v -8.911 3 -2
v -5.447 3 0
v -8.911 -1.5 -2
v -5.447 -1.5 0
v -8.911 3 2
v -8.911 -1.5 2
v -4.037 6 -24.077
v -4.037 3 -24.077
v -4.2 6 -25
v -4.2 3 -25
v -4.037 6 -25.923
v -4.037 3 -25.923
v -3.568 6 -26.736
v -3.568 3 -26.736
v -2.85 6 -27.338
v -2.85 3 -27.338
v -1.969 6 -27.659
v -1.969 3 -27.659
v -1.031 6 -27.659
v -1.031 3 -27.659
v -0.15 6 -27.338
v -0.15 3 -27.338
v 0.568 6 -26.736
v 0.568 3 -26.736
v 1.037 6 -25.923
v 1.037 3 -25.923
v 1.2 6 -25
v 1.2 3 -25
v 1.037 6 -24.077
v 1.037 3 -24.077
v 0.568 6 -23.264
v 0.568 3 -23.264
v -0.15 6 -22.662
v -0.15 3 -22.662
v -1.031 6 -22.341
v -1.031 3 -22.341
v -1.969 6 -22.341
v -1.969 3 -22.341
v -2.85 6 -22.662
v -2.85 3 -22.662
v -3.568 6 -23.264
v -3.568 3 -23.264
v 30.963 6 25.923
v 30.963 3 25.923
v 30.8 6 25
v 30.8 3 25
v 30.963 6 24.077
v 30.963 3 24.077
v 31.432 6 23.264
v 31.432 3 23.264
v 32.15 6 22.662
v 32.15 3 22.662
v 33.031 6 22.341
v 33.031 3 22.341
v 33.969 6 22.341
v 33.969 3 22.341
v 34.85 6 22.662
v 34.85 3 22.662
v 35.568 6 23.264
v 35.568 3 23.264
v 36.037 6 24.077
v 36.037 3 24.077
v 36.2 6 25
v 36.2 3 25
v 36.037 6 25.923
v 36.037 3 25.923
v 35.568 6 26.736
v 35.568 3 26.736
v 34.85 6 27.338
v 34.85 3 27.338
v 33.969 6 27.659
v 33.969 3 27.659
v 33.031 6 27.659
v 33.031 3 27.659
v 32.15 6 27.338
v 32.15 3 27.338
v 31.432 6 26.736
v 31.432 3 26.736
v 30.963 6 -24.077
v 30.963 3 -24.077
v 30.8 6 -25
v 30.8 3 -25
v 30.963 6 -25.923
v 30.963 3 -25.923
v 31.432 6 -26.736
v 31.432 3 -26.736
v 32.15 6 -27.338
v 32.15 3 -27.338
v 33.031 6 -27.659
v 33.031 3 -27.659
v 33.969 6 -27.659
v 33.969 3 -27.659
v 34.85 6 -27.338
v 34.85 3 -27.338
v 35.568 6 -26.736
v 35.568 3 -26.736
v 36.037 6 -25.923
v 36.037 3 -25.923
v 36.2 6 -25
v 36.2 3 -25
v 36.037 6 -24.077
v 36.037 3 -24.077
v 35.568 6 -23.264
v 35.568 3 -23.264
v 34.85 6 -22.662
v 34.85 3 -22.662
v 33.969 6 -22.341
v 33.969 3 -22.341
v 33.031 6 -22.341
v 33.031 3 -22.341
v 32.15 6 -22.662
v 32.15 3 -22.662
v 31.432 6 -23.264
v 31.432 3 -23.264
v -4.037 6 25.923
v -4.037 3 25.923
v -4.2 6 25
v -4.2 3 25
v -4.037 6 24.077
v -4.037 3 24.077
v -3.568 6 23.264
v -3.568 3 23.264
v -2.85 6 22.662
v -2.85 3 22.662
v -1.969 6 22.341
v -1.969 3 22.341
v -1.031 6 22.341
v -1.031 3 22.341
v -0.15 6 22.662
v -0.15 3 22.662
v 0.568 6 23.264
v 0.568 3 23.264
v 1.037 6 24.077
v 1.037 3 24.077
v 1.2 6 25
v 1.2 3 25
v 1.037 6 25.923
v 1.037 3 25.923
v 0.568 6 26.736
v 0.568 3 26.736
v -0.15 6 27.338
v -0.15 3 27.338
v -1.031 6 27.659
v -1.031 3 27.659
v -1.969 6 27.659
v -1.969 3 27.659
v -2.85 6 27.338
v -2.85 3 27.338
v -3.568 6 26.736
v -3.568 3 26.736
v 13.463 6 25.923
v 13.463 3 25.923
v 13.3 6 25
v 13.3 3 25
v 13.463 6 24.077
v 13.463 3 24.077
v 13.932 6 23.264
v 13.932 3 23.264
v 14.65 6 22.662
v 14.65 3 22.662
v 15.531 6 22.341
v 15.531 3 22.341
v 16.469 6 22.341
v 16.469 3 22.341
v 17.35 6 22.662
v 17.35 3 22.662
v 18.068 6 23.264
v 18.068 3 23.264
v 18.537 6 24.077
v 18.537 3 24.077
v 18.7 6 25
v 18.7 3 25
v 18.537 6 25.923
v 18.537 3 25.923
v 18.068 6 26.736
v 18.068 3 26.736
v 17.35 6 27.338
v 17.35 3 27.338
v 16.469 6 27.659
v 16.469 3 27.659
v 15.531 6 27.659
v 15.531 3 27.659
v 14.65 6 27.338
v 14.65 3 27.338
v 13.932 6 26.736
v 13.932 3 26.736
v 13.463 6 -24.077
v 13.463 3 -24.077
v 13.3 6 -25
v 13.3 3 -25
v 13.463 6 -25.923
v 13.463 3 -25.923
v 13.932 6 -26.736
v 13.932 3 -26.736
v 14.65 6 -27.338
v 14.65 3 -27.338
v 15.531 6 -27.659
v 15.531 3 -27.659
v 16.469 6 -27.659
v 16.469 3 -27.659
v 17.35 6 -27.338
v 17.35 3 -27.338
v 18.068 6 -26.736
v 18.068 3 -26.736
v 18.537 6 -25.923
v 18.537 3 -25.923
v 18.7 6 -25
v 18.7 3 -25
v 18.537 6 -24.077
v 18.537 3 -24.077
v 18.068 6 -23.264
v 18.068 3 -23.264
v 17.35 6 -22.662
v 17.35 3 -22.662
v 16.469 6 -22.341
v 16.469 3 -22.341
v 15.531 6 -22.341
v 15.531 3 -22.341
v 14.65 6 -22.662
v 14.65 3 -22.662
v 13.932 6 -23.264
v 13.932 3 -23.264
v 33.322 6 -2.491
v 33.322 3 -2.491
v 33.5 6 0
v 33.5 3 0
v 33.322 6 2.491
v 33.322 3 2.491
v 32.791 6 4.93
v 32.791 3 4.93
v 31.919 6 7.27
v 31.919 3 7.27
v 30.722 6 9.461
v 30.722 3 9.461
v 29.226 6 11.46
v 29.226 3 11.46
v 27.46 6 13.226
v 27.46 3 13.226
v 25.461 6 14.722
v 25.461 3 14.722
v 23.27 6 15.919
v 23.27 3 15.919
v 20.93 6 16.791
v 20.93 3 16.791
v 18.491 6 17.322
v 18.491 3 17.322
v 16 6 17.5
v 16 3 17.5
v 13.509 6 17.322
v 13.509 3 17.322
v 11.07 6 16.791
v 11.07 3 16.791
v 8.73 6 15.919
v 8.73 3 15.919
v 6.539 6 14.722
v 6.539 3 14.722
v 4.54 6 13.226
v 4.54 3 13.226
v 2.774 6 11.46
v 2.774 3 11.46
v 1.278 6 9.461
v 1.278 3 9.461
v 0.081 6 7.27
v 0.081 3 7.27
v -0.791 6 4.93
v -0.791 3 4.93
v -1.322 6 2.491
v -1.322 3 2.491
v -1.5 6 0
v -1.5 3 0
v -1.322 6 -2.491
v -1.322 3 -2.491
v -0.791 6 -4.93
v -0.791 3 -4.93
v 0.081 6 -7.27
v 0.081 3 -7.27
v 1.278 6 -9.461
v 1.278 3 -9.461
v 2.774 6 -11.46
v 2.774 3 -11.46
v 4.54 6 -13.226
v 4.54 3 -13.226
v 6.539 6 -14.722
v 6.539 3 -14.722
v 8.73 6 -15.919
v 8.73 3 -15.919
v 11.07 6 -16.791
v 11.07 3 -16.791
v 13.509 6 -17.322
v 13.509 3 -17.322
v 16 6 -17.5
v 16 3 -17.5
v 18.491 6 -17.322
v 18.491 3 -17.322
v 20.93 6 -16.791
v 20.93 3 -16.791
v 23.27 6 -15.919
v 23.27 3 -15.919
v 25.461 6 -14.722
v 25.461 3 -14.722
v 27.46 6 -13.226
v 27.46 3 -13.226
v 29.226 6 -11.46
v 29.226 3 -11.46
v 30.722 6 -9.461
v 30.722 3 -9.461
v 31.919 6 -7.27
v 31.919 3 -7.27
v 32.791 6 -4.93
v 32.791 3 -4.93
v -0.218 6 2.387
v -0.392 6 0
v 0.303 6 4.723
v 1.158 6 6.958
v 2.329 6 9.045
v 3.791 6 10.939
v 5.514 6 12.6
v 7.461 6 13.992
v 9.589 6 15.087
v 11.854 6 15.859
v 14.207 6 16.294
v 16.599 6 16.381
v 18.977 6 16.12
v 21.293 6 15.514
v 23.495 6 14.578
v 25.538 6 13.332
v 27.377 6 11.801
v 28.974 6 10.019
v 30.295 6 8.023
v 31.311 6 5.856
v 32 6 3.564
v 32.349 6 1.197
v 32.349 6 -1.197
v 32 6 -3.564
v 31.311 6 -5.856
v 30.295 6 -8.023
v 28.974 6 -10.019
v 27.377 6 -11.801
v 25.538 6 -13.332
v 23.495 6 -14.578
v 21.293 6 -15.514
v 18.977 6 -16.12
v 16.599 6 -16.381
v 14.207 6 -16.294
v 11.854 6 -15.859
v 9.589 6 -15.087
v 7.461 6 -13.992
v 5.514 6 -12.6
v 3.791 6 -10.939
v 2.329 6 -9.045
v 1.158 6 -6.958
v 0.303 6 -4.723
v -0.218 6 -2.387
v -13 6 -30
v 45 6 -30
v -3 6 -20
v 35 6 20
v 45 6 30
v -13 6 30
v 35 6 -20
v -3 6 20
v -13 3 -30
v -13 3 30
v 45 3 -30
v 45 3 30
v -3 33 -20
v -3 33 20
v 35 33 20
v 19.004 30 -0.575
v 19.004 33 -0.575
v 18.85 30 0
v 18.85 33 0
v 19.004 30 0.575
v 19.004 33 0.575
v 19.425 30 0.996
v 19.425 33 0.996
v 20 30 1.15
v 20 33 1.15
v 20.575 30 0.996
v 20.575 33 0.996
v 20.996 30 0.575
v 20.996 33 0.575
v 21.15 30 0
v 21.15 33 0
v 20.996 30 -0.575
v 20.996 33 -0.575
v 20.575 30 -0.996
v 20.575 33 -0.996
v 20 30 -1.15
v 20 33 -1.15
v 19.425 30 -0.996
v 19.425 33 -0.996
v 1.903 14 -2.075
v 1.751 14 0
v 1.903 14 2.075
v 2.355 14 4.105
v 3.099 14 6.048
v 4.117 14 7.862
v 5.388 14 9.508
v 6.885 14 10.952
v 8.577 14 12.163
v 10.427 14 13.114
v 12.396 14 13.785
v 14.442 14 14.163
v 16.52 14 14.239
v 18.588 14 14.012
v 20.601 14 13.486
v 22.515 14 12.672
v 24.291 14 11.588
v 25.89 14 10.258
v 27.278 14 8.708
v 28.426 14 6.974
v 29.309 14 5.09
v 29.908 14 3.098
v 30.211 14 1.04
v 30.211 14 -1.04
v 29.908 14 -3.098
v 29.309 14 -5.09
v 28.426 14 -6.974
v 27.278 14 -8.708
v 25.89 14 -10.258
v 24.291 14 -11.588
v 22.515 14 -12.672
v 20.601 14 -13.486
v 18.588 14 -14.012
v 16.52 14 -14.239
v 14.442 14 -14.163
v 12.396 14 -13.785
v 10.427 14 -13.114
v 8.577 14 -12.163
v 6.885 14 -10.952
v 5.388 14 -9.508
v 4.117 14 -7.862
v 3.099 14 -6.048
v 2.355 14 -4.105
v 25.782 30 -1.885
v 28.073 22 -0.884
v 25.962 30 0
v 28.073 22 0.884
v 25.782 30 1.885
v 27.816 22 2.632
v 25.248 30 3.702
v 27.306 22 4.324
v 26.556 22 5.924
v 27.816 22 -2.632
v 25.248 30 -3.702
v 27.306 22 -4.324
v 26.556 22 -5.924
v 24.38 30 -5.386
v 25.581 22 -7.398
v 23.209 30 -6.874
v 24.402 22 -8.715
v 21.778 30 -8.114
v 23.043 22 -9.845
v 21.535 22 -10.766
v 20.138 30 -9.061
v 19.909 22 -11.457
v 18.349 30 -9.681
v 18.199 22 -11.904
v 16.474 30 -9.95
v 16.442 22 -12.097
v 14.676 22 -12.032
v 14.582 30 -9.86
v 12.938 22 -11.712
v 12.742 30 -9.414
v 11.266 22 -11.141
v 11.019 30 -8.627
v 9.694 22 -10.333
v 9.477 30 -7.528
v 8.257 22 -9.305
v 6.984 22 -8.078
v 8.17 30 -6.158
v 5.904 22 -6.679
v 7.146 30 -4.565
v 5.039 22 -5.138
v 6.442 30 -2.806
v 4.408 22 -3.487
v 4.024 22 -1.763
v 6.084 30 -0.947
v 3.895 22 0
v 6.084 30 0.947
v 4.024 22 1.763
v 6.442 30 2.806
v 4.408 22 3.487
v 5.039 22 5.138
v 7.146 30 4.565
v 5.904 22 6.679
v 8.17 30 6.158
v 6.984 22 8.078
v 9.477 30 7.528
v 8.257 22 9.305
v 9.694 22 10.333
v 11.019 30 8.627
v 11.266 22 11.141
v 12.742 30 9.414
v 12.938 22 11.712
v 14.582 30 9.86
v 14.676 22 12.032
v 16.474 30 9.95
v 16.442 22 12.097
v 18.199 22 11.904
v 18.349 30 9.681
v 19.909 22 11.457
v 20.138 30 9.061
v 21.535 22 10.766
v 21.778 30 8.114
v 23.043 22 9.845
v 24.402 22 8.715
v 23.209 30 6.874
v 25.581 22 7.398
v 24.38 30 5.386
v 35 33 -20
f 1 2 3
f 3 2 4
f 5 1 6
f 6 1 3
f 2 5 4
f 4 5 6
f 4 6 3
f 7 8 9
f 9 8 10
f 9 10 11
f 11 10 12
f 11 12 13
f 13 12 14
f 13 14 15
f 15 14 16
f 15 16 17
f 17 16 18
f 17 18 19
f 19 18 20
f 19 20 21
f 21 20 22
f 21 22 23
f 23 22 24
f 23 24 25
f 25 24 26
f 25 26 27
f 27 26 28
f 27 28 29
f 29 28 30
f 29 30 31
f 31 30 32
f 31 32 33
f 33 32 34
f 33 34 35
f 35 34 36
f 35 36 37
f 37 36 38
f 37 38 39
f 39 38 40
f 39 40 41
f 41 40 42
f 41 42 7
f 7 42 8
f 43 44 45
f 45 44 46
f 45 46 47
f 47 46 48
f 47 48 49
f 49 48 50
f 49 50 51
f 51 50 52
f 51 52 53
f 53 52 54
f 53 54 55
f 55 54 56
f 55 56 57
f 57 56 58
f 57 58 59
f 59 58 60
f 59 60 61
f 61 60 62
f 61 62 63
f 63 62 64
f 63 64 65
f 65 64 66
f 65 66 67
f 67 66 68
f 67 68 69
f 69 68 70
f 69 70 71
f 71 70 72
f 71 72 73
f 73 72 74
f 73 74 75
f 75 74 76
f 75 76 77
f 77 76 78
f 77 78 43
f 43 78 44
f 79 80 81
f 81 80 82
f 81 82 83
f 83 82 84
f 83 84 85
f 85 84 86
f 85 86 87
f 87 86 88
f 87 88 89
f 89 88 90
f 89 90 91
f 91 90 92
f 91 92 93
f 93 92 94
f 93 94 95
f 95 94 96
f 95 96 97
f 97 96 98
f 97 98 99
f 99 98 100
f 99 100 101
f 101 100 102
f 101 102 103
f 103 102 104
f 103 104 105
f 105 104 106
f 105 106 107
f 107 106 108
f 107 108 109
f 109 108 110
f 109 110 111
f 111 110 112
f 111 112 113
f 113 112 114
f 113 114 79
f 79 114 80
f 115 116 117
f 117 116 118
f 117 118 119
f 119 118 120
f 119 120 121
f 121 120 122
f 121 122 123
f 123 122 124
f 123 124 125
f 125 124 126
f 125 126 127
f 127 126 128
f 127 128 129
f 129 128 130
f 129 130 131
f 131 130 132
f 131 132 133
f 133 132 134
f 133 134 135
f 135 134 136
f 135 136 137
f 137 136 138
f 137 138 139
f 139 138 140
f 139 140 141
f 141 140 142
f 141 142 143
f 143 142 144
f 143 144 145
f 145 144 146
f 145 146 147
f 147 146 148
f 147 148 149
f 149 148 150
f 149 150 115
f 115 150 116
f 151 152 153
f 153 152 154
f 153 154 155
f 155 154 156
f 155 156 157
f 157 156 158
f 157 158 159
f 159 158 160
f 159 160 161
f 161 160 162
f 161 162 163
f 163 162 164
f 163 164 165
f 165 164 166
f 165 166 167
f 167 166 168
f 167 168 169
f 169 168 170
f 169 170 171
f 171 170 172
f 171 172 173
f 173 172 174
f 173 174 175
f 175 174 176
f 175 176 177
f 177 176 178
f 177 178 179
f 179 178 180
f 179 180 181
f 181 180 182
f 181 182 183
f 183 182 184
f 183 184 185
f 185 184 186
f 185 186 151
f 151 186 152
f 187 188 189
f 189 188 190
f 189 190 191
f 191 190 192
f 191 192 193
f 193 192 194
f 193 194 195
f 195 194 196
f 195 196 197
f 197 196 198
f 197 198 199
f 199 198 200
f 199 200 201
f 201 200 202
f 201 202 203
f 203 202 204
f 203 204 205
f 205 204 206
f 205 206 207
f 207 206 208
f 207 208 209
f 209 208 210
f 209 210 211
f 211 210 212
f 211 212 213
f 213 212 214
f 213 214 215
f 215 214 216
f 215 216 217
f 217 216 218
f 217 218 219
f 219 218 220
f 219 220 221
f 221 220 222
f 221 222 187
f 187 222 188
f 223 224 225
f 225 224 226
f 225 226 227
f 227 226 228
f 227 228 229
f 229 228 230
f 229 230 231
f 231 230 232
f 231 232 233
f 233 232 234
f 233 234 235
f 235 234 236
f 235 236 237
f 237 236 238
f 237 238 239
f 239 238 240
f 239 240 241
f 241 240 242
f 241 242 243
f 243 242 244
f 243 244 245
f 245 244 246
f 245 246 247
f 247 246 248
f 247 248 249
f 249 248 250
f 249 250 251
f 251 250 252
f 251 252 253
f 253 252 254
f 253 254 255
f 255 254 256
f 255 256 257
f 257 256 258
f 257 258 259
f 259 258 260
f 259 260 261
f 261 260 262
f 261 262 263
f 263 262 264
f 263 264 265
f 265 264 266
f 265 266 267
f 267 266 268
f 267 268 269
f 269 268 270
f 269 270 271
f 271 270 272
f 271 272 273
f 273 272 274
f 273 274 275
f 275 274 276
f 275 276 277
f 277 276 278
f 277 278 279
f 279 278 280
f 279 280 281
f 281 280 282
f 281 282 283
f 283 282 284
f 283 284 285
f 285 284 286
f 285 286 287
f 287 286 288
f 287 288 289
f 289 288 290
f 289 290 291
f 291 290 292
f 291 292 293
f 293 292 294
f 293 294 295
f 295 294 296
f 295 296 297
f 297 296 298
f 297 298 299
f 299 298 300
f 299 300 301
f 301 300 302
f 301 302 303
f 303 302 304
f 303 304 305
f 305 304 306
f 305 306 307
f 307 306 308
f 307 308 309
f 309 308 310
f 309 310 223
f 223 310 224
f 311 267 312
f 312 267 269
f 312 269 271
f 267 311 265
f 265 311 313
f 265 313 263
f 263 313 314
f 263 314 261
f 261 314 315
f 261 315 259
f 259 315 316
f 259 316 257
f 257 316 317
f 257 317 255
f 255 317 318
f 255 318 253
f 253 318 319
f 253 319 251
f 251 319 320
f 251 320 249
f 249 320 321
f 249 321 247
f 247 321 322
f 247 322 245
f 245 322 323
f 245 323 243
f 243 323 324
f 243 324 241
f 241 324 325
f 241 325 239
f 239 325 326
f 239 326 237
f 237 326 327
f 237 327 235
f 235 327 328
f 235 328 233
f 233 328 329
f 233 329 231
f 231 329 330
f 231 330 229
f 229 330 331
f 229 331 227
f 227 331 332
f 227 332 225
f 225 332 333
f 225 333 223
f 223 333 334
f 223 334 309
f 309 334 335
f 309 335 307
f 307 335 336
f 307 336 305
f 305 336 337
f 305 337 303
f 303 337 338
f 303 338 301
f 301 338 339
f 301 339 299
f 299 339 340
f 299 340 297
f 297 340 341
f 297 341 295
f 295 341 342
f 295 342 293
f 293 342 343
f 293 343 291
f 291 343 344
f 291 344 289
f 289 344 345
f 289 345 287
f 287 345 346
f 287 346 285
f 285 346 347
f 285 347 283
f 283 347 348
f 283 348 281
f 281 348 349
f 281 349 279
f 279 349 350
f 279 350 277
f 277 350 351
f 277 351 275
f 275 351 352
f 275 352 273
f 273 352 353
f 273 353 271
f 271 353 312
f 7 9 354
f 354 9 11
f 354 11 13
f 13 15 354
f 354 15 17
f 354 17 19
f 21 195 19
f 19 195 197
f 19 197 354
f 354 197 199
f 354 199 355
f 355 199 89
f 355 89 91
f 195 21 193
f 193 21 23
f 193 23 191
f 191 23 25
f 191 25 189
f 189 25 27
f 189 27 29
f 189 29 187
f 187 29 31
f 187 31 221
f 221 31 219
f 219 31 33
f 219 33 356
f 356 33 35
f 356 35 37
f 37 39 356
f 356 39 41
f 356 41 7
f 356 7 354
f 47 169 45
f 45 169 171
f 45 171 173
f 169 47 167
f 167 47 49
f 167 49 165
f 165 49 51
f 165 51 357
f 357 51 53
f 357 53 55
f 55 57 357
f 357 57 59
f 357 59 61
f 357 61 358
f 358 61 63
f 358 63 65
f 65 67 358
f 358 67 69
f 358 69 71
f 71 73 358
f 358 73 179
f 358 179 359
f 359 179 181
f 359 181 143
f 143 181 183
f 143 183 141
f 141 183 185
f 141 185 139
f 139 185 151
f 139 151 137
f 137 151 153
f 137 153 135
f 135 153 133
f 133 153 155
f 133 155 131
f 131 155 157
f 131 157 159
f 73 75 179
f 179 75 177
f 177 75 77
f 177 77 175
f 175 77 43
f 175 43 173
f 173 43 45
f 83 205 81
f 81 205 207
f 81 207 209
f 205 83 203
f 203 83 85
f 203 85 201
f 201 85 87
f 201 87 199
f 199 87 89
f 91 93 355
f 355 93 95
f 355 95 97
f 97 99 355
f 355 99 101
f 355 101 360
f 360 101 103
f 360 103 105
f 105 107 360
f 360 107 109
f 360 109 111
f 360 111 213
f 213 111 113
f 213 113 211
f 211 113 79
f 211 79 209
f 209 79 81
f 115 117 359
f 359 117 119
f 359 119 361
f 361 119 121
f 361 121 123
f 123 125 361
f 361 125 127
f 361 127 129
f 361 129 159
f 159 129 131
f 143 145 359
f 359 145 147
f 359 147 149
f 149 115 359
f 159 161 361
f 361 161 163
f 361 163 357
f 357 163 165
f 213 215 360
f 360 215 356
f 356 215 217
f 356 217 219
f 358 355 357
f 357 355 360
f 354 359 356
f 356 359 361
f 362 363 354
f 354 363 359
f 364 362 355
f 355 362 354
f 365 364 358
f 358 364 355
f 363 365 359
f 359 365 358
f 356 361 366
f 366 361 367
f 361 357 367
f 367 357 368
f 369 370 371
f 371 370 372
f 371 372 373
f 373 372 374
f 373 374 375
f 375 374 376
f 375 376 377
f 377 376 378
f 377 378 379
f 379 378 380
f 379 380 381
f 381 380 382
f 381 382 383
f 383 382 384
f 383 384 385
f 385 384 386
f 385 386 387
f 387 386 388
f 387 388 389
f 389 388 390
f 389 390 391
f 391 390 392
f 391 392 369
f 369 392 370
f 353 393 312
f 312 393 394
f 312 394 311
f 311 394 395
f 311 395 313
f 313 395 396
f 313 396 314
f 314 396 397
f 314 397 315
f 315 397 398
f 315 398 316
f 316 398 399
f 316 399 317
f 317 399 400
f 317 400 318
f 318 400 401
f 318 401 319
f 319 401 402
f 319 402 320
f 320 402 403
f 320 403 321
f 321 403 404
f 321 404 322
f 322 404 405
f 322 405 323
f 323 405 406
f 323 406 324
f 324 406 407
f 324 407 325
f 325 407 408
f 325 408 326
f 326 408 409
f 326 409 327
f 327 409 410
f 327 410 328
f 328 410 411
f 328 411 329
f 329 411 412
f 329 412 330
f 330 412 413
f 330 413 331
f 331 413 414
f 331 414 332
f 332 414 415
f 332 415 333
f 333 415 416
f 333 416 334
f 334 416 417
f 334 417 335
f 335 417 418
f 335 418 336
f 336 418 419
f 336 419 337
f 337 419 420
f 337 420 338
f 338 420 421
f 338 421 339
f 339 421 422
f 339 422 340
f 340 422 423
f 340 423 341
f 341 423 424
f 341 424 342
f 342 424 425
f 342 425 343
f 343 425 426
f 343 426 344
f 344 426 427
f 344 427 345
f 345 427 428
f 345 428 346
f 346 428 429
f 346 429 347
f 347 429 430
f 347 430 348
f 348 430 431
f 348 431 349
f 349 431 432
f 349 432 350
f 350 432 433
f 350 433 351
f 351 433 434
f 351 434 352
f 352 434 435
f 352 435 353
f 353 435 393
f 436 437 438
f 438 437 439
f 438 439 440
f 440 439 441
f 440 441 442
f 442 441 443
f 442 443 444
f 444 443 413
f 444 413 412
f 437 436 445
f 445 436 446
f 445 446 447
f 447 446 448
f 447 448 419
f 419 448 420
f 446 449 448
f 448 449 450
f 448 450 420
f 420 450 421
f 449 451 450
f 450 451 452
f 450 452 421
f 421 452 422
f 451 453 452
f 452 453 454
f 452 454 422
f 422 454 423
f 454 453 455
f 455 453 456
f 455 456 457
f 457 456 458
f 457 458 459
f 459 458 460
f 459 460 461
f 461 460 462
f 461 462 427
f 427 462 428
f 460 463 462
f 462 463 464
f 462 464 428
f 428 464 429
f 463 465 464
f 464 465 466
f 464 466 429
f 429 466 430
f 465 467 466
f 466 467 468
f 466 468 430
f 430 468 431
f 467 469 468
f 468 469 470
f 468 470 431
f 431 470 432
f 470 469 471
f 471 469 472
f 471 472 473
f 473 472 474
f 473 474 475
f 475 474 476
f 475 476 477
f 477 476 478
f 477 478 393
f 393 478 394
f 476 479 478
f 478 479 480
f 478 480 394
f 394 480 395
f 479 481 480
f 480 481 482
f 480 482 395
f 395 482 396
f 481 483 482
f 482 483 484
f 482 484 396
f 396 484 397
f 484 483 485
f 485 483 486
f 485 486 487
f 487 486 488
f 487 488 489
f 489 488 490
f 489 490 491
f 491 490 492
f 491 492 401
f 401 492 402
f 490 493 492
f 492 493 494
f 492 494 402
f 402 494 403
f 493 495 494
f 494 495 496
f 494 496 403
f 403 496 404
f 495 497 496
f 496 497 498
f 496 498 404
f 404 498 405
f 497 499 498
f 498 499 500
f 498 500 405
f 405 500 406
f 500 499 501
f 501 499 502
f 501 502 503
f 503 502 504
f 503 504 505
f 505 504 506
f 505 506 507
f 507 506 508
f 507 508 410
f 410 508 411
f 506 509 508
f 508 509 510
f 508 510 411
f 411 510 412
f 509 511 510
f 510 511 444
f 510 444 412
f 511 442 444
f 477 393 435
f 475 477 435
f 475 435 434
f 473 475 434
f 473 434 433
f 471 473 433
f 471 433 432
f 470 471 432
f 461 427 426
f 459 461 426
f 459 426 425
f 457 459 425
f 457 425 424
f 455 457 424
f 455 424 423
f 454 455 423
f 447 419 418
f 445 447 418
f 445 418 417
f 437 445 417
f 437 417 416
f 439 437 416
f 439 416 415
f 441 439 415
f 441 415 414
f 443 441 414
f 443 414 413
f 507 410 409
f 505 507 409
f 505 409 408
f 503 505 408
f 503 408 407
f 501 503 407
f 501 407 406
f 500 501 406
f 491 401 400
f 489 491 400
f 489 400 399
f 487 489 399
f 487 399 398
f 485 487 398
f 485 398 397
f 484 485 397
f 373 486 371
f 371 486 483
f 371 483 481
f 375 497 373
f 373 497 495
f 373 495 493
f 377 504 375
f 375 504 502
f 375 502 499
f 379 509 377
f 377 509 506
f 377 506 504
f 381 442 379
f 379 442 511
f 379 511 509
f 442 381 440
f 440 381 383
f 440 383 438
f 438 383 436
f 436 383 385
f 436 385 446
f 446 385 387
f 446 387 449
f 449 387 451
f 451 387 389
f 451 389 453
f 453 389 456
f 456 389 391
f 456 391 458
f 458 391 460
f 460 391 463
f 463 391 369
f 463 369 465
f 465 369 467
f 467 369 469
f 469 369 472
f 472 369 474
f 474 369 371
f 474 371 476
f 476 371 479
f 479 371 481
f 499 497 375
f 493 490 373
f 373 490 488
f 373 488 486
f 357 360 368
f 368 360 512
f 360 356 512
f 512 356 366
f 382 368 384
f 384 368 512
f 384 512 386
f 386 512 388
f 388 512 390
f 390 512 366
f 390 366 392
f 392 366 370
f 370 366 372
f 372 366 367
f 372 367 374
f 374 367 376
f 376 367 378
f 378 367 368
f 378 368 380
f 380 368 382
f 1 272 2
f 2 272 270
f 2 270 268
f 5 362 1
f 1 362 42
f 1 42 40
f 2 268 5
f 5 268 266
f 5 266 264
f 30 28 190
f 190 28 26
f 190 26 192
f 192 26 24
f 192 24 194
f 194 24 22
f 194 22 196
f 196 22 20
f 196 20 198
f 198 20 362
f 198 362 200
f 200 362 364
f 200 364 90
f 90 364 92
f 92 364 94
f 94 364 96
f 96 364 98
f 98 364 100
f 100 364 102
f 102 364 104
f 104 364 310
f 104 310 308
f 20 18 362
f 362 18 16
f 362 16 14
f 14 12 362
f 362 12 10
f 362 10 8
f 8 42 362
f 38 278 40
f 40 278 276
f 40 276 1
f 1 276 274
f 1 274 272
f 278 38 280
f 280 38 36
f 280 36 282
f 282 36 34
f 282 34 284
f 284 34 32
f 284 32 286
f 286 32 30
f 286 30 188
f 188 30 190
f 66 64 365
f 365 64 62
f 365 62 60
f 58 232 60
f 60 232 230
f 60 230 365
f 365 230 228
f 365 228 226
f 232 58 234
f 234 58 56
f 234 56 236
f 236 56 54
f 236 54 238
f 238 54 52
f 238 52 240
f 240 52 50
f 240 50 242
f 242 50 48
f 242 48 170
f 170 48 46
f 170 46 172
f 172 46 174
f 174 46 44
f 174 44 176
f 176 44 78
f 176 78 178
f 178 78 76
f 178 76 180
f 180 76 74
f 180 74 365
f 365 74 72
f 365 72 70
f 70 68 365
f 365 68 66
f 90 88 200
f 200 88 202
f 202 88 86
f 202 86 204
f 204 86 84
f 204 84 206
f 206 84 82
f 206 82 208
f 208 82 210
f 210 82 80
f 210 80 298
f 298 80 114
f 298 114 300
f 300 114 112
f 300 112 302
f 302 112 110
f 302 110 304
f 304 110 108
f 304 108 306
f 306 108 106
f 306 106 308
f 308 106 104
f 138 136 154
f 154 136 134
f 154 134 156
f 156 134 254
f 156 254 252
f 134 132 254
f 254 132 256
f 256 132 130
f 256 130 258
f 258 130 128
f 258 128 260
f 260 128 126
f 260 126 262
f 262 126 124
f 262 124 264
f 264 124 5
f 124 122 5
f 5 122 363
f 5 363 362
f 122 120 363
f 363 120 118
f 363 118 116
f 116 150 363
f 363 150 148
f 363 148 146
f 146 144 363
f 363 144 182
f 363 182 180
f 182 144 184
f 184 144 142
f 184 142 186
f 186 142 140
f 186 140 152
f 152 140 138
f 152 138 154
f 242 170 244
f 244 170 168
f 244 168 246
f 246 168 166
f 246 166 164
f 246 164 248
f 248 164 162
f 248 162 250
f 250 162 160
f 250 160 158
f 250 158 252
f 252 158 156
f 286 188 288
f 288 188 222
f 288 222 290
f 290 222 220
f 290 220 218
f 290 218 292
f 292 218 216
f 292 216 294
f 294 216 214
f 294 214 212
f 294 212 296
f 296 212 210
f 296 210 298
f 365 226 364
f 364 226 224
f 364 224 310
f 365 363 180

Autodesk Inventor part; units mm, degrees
ref_plane "YZ Plane" through (0, 0, 0) normal (1, 0, 0) x (0, 1, 0)
ref_plane "XZ Plane" through (0, 0, 0) normal (0, 1, 0) x (-1, 0, 0)
ref_plane "XY Plane" through (0, 0, 0) normal (0, 0, 1) x (1, 0, 0)
ref_plane "Work Plane5" through (0, 3, 0) normal (0, 1, 0) x (1, 0, 0)
sketch "Sketch45" plane through (0, 3, 0) normal (0, 1, 0) x (1, 0, 0)
  line L0 (35, -20) -> (-3, -20)
  line L1 (-3, -20) -> (-3, 20)
  line L2 (-3, 20) -> (35, 20)
  line L3 (35, 20) -> (35, -20)
  point P0 (0, 0)
  dimension "d142" = 38
  dimension "d143" = 40
extrude "Extrusion34" add sketch "Sketch45" along normal blind 30
ref_plane "Work Plane2" through (0, 0, 0) normal (0, -1, 0) x (1, 0, 0)
sketch "Sketch47" plane through (0, 0, 0) normal (0, -1, 0) x (1, 0, 0)
  circle A0 centre (16, 0) radius 18
  point P0 (0, 0)
  dimension "d146" = 36
extrude "Extrusion35" cut sketch "Sketch47" against normal blind 30 draft -15
ref_plane "Work Plane1" through (0, 3, 0) normal (0, 1, 0) x (1, 0, 0)
sketch "Sketch74" plane through (0, 33, 0) normal (0, 1, 0) x (1, 0, 0)
  circle A0 centre (20, 0) radius 1.15
  point P0 (0, 0)
  dimension "d210" = 2.3
extrude "Extrusion51" cut sketch "Sketch74" against normal blind 10
sketch "Sketch77" plane through (0, 3, 0) normal (0, -1, 0) x (1, 0, 0)
  circle A0 centre (16, 0) radius 17.5
  point P0 (0, 0)
  dimension "d219" = 35
sketch "Sketch78" plane through (0, 3, 0) normal (0, -1, 0) x (1, 0, 0)
  line L0 (45, -30) -> (-13, -30)
  line L1 (-13, -30) -> (-13, 30)
  line L2 (-13, 30) -> (45, 30)
  line L3 (45, 30) -> (45, -30)
  line L4 (45, -30) -> (-13, 30) construction
  line L5 (-13, -30) -> (45, 30) construction
  point P0 (0, 0)
  point P1 (16, 0)
  dimension "d220" = 58
  dimension "d221" = 60
extrude "Extrusion53" add sketch "Sketch78" against normal blind 3
extrude "Extrusion54" cut sketch "Sketch77" against normal blind 3
sketch "Sketch81" plane through (0, 3, 0) normal (0, -1, 0) x (1, 0, 0)
  circle A0 centre (33.5, -25) radius 2.7
  line L0 (-13, -30) -> (45, -30) projected
  line L1 (45, -30) -> (45, 30) projected
  circle A1 centre (16, -25) radius 2.7
  circle A2 centre (-1.5, -25) radius 2.7
  circle A3 centre (-1.5, 25) radius 2.7
  circle A4 centre (16, 25) radius 2.7
  circle A5 centre (33.5, 25) radius 2.7
  point P0 (0, 0)
  dimension "mag_D" = 5.4
  dimension "d232" = 5
  dimension "d233" = 11.5
  dimension "d234" = 5.4
  dimension "d235" = 17.5
  dimension "d236" = 5.4
  dimension "d237" = 17.5
  dimension "d243" = 5.4
  dimension "d245" = 5.4
  dimension "d246" = 17.5
  dimension "d247" = 5.4
  dimension "d248" = 17.5
extrude "Extrusion56" cut sketch "Sketch81" against normal blind 30
sketch "Sketch83" plane through (0, 3, 0) normal (0, -1, 0) x (1, 0, 0)
  line L0 (-8.9107, -2) -> (-8.9107, 2)
  line L1 (-8.9107, 2) -> (-5.4466, 0)
  line L2 (-5.4466, 0) -> (-8.9107, -2)
  point P0 (0, 0)
  point P1 (-8.9107, -9.2159)
  point P2 (-7.756, 0)
  dimension "d253" = 4
extrude "Extrusion57" add sketch "Sketch83" along normal blind 4.5
equation "\"d234\" = mag_D"
equation "\"d236\" = mag_D"
equation "\"d237\" = d235"
equation "\"d243\" = mag_D"
equation "\"d245\" = mag_D"
equation "\"d246\" = d235"
equation "\"d247\" = mag_D"
equation "\"d248\" = d235"
properties part number "liquid_port_v05"
